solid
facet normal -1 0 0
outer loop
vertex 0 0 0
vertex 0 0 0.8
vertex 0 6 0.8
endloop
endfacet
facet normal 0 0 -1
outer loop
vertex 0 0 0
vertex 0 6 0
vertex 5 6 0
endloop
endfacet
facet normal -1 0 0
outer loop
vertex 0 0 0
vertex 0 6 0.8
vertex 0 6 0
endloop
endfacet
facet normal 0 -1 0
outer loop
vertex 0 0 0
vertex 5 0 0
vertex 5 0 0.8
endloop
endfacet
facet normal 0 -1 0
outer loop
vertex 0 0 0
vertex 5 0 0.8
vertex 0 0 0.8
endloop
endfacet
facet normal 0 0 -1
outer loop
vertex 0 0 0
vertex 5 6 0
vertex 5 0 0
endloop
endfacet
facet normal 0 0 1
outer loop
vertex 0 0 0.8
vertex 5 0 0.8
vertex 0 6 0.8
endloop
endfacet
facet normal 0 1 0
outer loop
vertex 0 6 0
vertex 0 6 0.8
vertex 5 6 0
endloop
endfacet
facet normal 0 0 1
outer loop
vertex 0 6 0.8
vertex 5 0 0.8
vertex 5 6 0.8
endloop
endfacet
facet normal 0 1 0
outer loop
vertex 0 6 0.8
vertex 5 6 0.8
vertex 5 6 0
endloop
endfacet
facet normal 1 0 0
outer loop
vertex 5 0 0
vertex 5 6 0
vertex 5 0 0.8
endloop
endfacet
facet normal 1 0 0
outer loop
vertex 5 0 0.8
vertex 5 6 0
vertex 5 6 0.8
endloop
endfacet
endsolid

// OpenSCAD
/* Warning, this is a very basic generator with a lot of approximation 
input data : [WSON, U3X, 5x6x0.8mm, 8, , C, C04-00210C]
generated by com.zoubworld.electronics.cad.model3d.Basic
Date : Sun Feb 15 10:50:48 CET 2026
*/

//body
color("black")
translate([0,0,0])
cube([5.0,6.0,0.8], center=false);
